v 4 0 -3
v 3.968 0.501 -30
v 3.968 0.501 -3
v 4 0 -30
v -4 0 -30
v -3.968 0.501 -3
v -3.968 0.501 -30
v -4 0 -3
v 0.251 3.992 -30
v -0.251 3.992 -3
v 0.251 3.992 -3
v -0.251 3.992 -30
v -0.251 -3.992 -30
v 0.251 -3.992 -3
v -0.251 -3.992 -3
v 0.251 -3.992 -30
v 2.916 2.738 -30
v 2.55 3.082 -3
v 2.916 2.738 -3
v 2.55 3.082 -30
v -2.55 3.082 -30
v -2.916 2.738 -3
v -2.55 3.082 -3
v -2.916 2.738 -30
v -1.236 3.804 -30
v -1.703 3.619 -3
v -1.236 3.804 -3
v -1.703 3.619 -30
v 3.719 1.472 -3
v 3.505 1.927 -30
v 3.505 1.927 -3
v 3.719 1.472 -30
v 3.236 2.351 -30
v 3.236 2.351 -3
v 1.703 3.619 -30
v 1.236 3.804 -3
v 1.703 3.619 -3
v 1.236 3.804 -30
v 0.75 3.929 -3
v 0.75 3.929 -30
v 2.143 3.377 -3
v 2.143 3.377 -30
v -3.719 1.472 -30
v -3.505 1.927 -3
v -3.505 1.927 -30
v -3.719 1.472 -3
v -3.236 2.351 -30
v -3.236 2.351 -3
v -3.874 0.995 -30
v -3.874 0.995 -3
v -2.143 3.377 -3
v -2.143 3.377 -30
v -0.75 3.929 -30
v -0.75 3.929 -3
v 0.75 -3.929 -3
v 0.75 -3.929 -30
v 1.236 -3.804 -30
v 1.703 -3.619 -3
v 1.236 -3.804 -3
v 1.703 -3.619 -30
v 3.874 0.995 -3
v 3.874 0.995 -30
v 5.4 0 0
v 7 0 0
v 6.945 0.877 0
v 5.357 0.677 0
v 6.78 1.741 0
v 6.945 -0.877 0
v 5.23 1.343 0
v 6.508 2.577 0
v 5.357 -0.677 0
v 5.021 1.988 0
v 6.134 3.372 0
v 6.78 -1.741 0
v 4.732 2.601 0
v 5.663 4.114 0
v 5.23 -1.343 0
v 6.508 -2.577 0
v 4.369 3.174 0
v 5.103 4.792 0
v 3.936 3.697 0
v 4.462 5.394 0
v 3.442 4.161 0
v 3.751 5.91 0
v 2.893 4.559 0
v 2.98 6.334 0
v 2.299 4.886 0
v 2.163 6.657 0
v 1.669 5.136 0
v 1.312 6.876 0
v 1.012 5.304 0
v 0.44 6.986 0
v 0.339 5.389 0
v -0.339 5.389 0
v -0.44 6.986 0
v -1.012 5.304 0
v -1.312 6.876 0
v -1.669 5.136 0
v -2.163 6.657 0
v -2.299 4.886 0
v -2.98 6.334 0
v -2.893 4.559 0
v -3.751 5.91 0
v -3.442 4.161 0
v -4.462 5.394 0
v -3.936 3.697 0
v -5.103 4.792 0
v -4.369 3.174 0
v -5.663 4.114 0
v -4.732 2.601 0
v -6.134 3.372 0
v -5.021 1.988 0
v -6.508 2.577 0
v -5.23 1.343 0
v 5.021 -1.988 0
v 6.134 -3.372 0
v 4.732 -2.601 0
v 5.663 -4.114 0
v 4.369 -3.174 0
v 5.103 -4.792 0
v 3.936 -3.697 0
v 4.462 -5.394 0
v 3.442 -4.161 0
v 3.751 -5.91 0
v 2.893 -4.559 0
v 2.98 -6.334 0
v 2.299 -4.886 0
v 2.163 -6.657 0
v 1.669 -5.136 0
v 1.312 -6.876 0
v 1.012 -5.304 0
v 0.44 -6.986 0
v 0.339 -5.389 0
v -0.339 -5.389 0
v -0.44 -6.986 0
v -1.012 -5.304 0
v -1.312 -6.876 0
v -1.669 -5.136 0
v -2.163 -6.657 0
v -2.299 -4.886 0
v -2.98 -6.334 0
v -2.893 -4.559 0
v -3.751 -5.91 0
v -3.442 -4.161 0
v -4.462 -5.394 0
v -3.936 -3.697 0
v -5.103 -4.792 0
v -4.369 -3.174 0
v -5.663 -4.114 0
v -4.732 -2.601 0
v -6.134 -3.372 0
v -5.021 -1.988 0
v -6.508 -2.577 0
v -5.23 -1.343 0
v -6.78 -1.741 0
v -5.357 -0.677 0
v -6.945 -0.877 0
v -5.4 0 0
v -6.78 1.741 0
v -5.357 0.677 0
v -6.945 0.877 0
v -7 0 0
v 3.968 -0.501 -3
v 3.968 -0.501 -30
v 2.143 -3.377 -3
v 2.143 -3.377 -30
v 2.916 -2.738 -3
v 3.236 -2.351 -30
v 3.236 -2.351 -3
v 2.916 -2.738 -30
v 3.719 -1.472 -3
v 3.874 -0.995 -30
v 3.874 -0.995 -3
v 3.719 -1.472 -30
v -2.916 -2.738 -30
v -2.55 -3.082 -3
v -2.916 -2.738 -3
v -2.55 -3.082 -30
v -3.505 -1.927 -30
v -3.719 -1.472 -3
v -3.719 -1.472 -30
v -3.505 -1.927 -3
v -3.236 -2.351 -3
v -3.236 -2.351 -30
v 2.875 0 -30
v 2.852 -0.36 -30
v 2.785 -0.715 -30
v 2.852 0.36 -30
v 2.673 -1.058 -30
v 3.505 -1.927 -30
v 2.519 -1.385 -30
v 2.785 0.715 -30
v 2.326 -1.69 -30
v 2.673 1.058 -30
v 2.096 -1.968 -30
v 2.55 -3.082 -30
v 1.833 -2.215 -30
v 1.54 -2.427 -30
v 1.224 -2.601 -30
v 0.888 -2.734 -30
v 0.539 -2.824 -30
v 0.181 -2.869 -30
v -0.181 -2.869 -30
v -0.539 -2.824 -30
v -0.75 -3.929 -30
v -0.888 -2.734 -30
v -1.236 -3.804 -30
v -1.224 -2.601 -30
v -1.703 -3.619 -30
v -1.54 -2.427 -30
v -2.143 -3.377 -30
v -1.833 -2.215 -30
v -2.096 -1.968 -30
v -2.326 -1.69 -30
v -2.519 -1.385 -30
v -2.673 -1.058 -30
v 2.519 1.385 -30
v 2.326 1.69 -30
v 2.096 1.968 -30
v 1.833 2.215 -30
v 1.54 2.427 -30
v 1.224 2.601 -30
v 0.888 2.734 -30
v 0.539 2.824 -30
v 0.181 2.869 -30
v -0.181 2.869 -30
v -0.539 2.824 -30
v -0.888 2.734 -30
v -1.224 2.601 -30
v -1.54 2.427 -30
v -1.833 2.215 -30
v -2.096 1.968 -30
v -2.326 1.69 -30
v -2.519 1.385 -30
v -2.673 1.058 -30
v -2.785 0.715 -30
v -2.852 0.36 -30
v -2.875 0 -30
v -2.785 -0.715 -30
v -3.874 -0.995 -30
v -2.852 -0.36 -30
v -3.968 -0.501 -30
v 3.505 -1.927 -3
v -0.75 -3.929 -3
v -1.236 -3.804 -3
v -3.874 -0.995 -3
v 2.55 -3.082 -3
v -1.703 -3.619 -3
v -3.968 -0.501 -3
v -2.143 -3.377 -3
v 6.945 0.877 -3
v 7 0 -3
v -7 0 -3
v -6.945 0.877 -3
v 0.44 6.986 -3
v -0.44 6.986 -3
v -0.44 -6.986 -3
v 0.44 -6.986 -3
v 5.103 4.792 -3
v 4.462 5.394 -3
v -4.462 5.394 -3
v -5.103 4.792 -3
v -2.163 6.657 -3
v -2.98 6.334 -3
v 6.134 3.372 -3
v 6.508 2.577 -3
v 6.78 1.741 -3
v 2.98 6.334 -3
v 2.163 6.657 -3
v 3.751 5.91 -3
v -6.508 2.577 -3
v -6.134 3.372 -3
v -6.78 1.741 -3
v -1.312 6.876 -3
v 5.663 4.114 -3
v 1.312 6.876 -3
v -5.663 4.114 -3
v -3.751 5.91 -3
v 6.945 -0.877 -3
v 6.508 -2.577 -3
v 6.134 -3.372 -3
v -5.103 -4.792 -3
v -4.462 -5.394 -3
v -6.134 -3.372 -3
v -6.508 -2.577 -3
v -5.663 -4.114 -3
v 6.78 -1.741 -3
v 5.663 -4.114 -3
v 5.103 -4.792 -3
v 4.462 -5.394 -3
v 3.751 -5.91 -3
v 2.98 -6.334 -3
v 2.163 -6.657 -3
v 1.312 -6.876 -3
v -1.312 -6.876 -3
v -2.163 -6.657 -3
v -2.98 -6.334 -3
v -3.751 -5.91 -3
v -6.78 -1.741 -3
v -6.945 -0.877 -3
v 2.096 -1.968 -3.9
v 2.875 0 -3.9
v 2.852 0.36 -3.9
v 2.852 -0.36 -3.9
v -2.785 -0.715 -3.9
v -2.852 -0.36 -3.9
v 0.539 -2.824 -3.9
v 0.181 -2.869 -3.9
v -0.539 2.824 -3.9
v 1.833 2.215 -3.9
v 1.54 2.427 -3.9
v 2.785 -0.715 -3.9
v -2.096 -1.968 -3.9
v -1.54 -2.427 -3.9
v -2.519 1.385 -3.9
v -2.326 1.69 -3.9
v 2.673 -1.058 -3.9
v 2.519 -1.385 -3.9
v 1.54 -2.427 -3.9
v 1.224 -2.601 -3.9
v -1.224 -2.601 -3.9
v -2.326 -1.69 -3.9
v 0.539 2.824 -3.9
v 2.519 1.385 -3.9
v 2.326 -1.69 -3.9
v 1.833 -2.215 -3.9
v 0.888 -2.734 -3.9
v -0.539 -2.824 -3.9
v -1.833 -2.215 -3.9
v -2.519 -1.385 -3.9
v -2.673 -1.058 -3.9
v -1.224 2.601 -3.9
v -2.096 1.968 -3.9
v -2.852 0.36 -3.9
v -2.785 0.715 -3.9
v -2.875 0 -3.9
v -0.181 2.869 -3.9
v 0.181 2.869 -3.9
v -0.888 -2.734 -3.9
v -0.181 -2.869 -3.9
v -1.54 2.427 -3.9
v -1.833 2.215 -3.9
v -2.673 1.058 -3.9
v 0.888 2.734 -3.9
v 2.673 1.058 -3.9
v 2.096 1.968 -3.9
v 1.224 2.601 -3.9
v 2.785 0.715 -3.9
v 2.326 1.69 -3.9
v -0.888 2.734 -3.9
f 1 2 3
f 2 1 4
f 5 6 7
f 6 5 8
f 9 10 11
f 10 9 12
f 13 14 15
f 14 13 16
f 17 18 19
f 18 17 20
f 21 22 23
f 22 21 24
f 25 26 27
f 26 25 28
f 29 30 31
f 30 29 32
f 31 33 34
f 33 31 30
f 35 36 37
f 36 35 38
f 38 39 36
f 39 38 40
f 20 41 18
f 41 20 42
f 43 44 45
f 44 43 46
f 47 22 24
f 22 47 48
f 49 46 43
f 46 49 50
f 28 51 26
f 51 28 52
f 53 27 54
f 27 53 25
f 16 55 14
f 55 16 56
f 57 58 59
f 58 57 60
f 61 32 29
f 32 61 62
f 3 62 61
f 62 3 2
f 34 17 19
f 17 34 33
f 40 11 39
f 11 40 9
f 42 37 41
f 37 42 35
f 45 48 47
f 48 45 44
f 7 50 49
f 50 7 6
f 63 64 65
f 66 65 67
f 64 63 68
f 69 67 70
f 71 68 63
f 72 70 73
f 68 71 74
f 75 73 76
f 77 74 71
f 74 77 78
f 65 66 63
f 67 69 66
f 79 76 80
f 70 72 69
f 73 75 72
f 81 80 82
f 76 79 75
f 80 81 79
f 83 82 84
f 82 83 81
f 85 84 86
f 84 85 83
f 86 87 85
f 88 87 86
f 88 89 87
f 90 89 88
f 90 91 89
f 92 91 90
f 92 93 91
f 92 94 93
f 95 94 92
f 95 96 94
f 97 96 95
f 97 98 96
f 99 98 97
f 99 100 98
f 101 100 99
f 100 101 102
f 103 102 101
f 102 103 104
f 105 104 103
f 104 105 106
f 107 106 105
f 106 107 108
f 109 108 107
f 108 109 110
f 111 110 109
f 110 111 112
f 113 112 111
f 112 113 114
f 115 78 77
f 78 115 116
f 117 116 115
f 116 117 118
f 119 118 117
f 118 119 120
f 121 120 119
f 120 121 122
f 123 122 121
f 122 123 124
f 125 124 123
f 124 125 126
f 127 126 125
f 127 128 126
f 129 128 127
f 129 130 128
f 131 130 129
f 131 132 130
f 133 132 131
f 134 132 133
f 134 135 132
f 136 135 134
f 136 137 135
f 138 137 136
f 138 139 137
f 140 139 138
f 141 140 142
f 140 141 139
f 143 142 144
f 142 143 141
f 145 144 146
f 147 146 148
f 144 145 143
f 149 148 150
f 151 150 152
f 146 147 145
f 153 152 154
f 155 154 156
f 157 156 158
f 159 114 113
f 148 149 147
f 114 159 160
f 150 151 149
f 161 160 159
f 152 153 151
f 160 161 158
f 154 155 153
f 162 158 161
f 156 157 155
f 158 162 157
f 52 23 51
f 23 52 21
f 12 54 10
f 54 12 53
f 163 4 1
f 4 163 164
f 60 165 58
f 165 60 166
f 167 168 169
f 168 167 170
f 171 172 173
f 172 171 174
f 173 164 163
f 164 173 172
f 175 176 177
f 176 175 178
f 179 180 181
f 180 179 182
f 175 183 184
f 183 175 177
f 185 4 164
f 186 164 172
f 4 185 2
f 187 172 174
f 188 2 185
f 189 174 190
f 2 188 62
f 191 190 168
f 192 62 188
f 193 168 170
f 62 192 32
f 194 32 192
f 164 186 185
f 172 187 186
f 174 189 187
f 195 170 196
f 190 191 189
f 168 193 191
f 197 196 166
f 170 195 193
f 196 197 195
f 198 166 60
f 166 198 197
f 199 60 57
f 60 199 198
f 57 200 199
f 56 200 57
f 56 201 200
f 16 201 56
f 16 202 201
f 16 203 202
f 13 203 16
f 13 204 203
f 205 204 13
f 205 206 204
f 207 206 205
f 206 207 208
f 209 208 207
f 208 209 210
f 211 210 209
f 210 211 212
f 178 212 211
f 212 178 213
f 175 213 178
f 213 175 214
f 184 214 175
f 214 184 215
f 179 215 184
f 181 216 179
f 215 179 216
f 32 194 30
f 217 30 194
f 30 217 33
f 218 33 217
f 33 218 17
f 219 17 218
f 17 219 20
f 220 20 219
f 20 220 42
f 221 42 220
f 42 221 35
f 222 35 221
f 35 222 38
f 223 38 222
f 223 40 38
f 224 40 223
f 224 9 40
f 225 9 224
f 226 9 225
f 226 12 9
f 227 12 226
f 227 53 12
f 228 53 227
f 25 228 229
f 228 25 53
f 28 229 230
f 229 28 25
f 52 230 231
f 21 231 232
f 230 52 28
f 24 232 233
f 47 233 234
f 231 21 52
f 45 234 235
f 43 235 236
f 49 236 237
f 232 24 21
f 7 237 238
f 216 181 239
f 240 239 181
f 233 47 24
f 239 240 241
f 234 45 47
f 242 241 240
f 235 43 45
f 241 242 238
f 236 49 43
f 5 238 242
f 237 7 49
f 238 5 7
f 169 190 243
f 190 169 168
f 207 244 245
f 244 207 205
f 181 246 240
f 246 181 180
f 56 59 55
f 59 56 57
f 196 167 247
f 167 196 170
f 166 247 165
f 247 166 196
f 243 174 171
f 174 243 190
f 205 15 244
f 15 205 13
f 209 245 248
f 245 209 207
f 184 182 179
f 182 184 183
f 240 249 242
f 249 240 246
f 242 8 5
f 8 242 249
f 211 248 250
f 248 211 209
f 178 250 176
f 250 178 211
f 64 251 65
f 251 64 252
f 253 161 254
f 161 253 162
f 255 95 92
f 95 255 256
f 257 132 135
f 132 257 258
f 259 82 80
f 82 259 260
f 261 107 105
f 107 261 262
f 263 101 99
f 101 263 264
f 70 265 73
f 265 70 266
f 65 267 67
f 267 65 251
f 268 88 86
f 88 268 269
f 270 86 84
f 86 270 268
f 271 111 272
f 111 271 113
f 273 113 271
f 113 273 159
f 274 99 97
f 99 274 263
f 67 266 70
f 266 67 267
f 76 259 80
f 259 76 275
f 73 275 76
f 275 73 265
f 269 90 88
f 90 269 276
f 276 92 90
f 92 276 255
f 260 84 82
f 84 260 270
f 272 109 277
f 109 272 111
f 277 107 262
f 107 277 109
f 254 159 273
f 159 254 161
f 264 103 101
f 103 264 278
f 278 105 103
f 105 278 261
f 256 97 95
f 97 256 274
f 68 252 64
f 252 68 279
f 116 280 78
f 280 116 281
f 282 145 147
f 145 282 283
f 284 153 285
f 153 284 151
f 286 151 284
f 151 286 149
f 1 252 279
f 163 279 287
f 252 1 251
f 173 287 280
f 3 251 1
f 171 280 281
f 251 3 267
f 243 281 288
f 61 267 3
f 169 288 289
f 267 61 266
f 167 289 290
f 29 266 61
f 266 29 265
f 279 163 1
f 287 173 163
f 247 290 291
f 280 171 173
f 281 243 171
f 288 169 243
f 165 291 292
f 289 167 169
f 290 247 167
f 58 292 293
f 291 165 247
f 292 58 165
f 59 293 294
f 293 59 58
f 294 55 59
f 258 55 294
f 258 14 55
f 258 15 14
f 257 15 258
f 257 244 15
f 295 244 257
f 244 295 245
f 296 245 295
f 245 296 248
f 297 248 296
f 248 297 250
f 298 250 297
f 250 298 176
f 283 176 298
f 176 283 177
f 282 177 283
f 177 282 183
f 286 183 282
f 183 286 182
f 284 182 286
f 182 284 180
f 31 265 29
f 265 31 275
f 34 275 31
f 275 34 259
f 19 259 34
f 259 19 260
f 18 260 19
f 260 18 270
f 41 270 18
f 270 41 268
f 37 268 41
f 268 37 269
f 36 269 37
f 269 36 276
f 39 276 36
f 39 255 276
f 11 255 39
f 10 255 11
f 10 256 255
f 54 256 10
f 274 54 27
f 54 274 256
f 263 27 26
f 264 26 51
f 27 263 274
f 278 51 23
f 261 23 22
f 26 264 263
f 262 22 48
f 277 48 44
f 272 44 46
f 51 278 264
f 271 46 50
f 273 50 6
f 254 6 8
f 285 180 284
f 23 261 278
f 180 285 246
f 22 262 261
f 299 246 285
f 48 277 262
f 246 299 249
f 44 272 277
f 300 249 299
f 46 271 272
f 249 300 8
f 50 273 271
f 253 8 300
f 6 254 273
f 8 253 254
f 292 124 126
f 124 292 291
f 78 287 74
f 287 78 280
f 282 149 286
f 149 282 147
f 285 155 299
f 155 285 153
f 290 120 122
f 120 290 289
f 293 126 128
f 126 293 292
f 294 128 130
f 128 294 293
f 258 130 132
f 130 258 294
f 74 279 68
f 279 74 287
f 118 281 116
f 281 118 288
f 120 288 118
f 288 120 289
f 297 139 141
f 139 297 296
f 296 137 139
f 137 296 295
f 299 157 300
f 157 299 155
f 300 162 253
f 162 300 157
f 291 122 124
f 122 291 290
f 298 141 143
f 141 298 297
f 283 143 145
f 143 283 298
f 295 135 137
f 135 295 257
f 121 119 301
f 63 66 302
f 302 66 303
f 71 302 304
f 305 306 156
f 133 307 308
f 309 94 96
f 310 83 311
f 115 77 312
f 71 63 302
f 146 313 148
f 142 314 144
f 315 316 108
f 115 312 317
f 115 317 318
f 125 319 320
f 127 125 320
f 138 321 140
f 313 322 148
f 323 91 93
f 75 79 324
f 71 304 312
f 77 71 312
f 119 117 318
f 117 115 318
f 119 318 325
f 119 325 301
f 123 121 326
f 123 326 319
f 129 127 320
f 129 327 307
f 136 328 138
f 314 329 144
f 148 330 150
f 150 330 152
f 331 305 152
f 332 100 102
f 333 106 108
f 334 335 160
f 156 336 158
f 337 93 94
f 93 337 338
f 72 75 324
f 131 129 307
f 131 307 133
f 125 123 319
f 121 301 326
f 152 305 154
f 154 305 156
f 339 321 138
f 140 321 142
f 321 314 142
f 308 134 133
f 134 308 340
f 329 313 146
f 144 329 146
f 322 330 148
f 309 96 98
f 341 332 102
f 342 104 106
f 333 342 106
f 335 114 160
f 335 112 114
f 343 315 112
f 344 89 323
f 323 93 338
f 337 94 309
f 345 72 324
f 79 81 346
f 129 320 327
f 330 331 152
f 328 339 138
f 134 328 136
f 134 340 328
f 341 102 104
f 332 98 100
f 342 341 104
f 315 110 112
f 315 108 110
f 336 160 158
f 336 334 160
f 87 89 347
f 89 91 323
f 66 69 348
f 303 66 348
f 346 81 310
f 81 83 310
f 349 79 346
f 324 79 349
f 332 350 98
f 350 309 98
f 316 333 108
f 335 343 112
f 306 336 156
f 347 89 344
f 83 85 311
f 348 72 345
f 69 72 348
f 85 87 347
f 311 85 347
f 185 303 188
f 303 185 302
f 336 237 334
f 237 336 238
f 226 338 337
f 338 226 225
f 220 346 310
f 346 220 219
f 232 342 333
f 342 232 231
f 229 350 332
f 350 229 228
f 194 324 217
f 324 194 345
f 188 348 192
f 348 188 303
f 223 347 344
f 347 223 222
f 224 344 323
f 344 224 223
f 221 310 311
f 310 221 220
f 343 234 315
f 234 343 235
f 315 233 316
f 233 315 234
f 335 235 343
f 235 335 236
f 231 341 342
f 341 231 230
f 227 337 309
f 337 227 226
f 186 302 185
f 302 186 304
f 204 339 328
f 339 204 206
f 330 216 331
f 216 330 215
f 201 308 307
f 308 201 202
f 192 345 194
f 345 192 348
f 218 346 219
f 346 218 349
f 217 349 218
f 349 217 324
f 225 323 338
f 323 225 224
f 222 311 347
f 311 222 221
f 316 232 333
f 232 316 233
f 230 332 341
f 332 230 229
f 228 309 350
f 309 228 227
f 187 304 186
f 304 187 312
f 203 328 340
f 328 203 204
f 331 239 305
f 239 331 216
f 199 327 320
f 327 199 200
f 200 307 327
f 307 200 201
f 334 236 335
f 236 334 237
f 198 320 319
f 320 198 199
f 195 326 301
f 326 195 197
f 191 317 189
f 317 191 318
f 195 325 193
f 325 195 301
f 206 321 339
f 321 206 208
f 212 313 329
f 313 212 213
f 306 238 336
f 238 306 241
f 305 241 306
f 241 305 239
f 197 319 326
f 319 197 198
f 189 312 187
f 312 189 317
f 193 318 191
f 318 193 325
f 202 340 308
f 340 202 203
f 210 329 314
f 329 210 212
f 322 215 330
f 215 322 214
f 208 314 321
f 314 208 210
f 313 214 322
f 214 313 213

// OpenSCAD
$fn = 50;


difference() {
	union() {
		translate(v = [0, 0, -30.0000000000]) {
			cylinder(h = 30, r = 4.0000000000);
		}
		translate(v = [0, 0, -3.0000000000]) {
			cylinder(h = 3, r = 7.0000000000);
		}
	}
	union() {
		translate(v = [0, 0, 0]) {
			rotate(a = [0, 0, 0]) {
				difference() {
					union() {
						#translate(v = [0, 0, -30.0000000000]) {
							cylinder(h = 30, r = 2.6000000000);
						}
						#translate(v = [0, 0, -3.9000000000]) {
							cylinder(h = 3.9000000000, r1 = 2.8750000000, r2 = 5.4000000000);
						}
						#translate(v = [0, 0, -30.0000000000]) {
							cylinder(h = 30, r = 2.8750000000);
						}
						#translate(v = [0, 0, -30.0000000000]) {
							cylinder(h = 30, r = 2.6000000000);
						}
					}
					union();
				}
			}
		}
	}
}
